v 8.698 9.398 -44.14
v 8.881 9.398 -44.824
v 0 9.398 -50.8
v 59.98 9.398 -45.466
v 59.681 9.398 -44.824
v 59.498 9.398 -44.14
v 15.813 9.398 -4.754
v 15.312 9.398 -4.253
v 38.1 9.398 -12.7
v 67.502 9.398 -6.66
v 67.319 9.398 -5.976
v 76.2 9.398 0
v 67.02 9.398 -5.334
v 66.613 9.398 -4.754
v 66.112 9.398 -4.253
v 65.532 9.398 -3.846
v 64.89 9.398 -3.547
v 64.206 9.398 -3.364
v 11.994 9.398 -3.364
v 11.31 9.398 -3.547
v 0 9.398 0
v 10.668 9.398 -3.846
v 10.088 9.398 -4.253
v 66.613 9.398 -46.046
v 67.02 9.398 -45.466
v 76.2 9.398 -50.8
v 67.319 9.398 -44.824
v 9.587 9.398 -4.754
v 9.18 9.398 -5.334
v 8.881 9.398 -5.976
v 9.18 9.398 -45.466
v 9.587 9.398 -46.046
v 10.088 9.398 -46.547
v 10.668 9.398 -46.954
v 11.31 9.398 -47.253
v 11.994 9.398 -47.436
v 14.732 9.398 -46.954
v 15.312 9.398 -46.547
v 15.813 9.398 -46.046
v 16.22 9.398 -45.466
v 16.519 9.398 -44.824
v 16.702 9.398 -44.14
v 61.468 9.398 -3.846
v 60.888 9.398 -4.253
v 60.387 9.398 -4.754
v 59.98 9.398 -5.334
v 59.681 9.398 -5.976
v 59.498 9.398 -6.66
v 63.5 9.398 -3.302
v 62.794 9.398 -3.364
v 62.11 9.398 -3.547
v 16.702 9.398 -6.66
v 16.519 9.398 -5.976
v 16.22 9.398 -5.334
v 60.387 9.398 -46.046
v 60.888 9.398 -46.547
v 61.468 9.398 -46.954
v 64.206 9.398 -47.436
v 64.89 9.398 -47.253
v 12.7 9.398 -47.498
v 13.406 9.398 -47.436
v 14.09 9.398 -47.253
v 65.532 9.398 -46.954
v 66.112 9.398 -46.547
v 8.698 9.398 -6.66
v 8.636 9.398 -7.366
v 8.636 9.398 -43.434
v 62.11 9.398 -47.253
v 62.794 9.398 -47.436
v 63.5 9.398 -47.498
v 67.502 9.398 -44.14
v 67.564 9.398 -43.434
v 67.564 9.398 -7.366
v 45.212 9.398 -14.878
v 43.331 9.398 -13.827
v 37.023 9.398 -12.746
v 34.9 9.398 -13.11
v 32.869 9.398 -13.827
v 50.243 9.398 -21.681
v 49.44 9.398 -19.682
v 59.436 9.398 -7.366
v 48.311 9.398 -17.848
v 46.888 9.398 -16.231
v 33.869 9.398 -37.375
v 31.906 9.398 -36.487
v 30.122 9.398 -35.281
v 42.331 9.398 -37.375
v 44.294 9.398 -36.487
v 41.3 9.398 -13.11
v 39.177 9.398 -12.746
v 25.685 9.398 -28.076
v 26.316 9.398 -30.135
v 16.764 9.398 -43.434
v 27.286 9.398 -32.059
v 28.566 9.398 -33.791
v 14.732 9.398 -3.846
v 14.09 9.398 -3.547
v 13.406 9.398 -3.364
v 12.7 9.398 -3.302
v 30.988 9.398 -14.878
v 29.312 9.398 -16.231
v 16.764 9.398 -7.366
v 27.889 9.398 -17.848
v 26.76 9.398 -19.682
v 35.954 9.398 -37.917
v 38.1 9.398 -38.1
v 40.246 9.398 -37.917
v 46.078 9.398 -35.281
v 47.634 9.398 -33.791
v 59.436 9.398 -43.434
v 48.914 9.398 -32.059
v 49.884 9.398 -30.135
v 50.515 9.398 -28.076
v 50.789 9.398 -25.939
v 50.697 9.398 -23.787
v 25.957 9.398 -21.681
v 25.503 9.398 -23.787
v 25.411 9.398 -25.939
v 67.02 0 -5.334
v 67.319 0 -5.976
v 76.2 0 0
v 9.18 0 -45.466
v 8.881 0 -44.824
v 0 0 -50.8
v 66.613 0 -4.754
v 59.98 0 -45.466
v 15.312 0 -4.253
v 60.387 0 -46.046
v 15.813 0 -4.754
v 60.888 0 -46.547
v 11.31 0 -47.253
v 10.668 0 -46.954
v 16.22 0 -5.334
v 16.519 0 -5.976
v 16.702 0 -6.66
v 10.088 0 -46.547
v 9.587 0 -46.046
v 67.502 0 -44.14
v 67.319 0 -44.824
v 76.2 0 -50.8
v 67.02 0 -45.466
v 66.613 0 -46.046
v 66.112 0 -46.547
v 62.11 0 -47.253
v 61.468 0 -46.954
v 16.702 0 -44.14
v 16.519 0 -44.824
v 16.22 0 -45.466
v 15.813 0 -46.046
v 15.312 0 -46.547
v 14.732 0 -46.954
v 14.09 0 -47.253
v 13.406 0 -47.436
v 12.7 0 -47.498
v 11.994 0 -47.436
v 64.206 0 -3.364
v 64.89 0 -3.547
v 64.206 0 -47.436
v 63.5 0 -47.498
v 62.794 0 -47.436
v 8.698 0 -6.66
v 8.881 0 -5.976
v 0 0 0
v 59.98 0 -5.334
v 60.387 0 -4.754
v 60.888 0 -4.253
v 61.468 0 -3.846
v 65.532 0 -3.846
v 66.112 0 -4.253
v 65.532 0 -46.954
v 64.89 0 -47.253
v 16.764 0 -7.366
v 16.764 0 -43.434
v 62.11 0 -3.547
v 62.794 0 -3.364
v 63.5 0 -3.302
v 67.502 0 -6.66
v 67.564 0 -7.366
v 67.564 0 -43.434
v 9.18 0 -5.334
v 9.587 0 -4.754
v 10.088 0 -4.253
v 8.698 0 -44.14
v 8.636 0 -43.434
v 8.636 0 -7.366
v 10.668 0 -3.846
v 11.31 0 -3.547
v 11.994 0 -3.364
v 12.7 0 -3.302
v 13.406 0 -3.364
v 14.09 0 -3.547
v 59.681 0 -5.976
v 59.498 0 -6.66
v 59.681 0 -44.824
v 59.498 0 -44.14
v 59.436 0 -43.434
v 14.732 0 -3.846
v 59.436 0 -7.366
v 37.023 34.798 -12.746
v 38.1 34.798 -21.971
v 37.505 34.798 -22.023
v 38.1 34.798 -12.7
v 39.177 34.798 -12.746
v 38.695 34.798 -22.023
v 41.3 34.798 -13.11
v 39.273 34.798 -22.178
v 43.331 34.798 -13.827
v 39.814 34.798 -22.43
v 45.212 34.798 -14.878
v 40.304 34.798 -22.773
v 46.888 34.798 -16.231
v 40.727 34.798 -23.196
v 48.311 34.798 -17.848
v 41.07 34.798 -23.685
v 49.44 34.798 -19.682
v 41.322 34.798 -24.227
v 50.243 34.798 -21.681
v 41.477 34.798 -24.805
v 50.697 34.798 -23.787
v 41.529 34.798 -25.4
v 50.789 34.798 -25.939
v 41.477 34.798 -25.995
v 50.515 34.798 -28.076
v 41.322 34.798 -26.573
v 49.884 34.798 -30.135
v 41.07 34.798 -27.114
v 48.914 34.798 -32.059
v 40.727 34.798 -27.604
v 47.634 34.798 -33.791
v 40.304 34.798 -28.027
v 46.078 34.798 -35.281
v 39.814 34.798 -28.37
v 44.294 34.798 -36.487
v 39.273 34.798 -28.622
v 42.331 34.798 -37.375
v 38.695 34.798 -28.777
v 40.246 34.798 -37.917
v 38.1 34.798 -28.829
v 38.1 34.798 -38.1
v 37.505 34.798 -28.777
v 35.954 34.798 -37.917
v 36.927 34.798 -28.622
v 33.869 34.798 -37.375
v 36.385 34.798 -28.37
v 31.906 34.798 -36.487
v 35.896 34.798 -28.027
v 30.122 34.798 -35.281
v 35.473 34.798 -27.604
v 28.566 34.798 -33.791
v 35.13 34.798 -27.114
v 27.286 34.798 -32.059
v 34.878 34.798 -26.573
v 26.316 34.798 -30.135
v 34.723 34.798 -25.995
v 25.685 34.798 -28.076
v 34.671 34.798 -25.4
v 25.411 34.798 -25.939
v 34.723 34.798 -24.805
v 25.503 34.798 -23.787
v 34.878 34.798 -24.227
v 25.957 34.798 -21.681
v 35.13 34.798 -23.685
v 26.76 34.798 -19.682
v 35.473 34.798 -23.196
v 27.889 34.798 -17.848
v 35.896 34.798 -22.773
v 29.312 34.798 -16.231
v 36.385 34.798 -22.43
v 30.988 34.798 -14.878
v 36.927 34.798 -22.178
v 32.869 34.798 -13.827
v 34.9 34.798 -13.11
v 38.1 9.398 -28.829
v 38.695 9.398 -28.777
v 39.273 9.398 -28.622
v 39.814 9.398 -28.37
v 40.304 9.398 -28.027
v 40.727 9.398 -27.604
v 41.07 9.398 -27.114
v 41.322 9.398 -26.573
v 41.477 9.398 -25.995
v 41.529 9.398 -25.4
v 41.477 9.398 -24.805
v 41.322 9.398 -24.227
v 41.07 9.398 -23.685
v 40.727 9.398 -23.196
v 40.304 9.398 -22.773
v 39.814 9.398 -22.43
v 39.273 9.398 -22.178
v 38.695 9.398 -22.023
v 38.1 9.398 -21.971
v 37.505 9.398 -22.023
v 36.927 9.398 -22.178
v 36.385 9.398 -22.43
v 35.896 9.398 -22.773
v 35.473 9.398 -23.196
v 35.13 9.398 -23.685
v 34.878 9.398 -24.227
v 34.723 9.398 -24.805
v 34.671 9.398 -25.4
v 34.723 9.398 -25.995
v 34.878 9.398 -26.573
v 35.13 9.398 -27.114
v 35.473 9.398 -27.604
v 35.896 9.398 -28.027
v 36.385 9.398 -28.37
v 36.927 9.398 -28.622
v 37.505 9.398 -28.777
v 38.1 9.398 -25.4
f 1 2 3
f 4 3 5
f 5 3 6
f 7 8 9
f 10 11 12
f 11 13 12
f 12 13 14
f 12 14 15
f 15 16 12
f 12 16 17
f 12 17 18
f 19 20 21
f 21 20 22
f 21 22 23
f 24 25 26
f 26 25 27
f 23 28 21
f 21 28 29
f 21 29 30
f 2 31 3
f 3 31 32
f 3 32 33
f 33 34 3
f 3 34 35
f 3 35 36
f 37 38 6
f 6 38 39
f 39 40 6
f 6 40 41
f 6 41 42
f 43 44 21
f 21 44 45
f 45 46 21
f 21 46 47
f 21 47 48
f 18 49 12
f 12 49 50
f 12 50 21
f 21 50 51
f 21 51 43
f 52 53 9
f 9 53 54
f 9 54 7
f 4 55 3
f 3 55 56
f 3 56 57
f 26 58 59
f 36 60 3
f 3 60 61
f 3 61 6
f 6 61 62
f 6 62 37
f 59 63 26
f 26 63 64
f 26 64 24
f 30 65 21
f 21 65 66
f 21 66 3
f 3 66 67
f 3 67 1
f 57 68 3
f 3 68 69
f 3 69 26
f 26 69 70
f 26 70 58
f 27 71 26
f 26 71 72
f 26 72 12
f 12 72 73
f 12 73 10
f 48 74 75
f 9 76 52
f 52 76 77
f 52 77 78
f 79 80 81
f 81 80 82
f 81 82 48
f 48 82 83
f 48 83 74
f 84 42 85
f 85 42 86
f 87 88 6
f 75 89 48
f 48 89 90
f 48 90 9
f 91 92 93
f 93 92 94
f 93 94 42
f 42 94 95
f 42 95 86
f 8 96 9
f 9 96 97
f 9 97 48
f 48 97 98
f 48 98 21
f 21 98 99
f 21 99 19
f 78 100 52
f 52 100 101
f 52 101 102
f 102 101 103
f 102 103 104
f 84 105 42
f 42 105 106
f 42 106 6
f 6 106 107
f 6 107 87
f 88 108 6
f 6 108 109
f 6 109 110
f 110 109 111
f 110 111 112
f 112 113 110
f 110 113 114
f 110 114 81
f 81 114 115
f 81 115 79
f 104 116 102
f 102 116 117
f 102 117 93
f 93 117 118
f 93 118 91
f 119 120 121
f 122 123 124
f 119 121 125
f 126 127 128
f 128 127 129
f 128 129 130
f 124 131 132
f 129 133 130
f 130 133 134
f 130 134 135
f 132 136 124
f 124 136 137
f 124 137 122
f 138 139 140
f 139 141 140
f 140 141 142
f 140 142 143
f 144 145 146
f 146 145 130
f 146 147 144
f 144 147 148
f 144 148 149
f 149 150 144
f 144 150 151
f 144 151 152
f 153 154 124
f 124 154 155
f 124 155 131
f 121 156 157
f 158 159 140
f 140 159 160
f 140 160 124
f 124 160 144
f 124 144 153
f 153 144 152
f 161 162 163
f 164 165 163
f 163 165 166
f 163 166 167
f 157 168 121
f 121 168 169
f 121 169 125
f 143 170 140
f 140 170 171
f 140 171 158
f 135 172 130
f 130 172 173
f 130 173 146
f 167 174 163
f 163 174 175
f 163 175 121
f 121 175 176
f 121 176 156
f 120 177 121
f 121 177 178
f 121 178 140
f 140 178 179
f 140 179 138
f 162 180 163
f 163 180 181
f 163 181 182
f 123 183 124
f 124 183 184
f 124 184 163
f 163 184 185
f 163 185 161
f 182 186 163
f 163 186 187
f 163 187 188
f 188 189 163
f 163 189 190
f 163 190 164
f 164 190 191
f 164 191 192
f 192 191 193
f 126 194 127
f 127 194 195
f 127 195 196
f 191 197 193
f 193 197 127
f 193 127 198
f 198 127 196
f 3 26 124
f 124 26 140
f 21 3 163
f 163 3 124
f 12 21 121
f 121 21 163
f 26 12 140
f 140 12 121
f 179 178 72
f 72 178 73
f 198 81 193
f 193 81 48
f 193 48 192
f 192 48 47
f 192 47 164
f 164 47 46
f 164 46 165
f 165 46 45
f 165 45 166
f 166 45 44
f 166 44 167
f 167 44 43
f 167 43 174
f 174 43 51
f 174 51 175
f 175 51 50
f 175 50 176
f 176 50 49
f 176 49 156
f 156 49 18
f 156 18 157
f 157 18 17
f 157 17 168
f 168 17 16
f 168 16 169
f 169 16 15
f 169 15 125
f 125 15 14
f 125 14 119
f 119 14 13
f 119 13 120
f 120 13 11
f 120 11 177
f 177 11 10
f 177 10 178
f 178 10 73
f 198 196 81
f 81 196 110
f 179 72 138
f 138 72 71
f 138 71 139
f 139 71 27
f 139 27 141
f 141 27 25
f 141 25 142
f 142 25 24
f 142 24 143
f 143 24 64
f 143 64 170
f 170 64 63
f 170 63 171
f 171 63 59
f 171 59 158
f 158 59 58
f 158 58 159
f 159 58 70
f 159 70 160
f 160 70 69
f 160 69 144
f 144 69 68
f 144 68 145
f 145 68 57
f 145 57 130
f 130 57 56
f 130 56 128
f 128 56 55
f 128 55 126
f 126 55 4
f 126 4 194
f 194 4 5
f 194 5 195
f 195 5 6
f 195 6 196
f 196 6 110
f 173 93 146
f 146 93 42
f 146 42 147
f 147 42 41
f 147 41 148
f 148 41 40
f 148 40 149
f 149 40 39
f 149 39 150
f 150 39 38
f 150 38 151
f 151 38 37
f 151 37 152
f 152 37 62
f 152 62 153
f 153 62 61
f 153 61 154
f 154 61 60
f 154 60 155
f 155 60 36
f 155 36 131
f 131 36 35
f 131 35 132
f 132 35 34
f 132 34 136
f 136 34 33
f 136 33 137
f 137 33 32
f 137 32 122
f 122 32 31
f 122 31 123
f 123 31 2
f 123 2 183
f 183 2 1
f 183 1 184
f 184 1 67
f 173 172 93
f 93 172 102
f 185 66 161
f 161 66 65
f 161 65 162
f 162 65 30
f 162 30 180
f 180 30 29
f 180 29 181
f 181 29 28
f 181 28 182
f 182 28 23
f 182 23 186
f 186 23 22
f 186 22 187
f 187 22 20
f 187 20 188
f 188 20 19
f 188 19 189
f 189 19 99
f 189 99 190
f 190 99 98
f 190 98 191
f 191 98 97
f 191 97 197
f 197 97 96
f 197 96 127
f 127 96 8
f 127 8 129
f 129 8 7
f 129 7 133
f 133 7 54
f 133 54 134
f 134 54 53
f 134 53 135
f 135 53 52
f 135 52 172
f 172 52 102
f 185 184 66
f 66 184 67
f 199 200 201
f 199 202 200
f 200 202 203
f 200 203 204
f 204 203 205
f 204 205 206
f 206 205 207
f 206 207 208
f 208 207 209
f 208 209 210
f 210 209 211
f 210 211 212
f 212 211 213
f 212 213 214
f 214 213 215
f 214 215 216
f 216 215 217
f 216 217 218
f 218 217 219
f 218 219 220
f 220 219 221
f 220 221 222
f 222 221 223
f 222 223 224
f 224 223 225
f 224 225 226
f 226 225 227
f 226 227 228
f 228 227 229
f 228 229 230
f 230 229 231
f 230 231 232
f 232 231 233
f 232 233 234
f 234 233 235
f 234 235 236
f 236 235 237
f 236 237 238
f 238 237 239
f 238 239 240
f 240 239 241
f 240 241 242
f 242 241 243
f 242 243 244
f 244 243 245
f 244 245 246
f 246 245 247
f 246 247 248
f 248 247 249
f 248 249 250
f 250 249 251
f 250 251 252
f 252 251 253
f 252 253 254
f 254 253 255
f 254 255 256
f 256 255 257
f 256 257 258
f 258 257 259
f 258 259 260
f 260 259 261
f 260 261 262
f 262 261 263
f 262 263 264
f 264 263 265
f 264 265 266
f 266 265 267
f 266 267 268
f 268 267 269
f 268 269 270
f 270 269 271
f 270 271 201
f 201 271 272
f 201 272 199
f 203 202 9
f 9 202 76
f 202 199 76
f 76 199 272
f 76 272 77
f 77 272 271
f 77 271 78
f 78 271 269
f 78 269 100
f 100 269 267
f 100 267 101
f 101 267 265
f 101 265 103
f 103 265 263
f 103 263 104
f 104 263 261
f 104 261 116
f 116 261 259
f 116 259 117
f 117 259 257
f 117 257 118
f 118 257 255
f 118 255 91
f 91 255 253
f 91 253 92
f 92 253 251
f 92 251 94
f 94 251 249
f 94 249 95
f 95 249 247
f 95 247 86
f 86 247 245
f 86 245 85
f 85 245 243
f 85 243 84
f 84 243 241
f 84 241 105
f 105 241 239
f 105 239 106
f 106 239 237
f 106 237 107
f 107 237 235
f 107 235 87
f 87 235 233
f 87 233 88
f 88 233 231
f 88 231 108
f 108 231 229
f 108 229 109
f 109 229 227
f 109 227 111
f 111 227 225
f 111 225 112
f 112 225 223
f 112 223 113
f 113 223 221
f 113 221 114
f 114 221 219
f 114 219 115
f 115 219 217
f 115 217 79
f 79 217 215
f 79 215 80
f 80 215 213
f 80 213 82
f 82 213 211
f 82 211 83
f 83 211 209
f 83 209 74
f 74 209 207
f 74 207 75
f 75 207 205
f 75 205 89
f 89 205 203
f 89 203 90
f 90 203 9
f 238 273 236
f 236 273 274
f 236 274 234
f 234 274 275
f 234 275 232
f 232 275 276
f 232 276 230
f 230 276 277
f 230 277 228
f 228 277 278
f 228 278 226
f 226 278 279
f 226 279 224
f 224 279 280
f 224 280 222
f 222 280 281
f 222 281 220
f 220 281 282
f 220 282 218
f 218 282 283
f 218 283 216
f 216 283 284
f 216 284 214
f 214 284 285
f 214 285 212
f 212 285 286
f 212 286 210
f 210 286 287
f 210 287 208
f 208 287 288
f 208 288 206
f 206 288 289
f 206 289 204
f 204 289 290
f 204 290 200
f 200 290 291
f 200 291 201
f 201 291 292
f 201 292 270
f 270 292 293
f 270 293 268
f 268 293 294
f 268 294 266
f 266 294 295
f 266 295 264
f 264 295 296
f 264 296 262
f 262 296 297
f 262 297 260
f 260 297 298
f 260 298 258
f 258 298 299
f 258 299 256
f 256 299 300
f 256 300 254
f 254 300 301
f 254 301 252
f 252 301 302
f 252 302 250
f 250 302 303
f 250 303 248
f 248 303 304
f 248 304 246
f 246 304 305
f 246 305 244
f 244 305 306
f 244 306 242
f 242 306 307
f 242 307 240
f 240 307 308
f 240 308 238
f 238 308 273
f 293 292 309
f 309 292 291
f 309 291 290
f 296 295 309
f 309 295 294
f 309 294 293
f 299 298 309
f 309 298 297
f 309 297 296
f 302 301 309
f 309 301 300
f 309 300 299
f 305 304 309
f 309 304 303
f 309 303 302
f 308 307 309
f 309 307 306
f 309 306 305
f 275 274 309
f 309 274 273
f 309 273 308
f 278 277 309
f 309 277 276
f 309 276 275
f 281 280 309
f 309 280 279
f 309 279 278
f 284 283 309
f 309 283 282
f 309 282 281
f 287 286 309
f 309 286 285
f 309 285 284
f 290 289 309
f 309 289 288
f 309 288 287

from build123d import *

# Parameters (mm, degrees)
SKETCH1_W           = 76.2
SKETCH1_H           = 50.8
BOSS_EXTRUDE1_DEPTH = 9.398
CUT_EXTRUDE1_DEPTH  = 9.398
SKETCH4_R           = 12.7
SKETCH4_R_2         = 3.429
BOSS_EXTRUDE2_DEPTH = 25.4


with BuildPart() as part:
    # Sketch1 → Boss-Extrude1 (new body)
    with BuildSketch(Plane(origin=(0, 0, 0), x_dir=(1, 0, 0), z_dir=(0, 1, 0))):
        with Locations((38.1, 25.4)):
            Rectangle(SKETCH1_W, SKETCH1_H)
    extrude(amount=BOSS_EXTRUDE1_DEPTH)

    # Sketch3 → Cut-Extrude1 (cut)
    with BuildSketch(Plane(origin=(0, 9.398, 0), x_dir=(1, 0, 0), z_dir=(0, 1, 0))):
        with BuildLine():
            Line((8.636, 43.434), (8.636, 7.366))
            ThreePointArc((8.636, 7.366), (12.7, 3.302), (16.764, 7.366))
            Line((16.764, 7.366), (16.764, 43.434))
            ThreePointArc((16.764, 43.434), (12.7, 47.498), (8.636, 43.434))
        make_face()
        with BuildLine():
            Line((67.564, 43.434), (67.564, 7.366))
            ThreePointArc((67.564, 7.366), (63.5, 3.302), (59.436, 7.366))
            Line((59.436, 7.366), (59.436, 43.434))
            ThreePointArc((59.436, 43.434), (63.5, 47.498), (67.564, 43.434))
        make_face()
    extrude(amount=-CUT_EXTRUDE1_DEPTH, mode=Mode.SUBTRACT)

    # Sketch4 → Boss-Extrude2 (add)
    with BuildSketch(Plane(origin=(0, 9.398, 0), x_dir=(1, 0, 0), z_dir=(0, 1, 0))):
        with Locations(Location((38.1, 25.4, 0), (0, 0, 270))):
            Circle(SKETCH4_R)
        with Locations(Location((38.1, 25.4, 0), (0, 0, 270))):
            Circle(SKETCH4_R_2, mode=Mode.SUBTRACT)
    extrude(amount=BOSS_EXTRUDE2_DEPTH)


solid = part.part
